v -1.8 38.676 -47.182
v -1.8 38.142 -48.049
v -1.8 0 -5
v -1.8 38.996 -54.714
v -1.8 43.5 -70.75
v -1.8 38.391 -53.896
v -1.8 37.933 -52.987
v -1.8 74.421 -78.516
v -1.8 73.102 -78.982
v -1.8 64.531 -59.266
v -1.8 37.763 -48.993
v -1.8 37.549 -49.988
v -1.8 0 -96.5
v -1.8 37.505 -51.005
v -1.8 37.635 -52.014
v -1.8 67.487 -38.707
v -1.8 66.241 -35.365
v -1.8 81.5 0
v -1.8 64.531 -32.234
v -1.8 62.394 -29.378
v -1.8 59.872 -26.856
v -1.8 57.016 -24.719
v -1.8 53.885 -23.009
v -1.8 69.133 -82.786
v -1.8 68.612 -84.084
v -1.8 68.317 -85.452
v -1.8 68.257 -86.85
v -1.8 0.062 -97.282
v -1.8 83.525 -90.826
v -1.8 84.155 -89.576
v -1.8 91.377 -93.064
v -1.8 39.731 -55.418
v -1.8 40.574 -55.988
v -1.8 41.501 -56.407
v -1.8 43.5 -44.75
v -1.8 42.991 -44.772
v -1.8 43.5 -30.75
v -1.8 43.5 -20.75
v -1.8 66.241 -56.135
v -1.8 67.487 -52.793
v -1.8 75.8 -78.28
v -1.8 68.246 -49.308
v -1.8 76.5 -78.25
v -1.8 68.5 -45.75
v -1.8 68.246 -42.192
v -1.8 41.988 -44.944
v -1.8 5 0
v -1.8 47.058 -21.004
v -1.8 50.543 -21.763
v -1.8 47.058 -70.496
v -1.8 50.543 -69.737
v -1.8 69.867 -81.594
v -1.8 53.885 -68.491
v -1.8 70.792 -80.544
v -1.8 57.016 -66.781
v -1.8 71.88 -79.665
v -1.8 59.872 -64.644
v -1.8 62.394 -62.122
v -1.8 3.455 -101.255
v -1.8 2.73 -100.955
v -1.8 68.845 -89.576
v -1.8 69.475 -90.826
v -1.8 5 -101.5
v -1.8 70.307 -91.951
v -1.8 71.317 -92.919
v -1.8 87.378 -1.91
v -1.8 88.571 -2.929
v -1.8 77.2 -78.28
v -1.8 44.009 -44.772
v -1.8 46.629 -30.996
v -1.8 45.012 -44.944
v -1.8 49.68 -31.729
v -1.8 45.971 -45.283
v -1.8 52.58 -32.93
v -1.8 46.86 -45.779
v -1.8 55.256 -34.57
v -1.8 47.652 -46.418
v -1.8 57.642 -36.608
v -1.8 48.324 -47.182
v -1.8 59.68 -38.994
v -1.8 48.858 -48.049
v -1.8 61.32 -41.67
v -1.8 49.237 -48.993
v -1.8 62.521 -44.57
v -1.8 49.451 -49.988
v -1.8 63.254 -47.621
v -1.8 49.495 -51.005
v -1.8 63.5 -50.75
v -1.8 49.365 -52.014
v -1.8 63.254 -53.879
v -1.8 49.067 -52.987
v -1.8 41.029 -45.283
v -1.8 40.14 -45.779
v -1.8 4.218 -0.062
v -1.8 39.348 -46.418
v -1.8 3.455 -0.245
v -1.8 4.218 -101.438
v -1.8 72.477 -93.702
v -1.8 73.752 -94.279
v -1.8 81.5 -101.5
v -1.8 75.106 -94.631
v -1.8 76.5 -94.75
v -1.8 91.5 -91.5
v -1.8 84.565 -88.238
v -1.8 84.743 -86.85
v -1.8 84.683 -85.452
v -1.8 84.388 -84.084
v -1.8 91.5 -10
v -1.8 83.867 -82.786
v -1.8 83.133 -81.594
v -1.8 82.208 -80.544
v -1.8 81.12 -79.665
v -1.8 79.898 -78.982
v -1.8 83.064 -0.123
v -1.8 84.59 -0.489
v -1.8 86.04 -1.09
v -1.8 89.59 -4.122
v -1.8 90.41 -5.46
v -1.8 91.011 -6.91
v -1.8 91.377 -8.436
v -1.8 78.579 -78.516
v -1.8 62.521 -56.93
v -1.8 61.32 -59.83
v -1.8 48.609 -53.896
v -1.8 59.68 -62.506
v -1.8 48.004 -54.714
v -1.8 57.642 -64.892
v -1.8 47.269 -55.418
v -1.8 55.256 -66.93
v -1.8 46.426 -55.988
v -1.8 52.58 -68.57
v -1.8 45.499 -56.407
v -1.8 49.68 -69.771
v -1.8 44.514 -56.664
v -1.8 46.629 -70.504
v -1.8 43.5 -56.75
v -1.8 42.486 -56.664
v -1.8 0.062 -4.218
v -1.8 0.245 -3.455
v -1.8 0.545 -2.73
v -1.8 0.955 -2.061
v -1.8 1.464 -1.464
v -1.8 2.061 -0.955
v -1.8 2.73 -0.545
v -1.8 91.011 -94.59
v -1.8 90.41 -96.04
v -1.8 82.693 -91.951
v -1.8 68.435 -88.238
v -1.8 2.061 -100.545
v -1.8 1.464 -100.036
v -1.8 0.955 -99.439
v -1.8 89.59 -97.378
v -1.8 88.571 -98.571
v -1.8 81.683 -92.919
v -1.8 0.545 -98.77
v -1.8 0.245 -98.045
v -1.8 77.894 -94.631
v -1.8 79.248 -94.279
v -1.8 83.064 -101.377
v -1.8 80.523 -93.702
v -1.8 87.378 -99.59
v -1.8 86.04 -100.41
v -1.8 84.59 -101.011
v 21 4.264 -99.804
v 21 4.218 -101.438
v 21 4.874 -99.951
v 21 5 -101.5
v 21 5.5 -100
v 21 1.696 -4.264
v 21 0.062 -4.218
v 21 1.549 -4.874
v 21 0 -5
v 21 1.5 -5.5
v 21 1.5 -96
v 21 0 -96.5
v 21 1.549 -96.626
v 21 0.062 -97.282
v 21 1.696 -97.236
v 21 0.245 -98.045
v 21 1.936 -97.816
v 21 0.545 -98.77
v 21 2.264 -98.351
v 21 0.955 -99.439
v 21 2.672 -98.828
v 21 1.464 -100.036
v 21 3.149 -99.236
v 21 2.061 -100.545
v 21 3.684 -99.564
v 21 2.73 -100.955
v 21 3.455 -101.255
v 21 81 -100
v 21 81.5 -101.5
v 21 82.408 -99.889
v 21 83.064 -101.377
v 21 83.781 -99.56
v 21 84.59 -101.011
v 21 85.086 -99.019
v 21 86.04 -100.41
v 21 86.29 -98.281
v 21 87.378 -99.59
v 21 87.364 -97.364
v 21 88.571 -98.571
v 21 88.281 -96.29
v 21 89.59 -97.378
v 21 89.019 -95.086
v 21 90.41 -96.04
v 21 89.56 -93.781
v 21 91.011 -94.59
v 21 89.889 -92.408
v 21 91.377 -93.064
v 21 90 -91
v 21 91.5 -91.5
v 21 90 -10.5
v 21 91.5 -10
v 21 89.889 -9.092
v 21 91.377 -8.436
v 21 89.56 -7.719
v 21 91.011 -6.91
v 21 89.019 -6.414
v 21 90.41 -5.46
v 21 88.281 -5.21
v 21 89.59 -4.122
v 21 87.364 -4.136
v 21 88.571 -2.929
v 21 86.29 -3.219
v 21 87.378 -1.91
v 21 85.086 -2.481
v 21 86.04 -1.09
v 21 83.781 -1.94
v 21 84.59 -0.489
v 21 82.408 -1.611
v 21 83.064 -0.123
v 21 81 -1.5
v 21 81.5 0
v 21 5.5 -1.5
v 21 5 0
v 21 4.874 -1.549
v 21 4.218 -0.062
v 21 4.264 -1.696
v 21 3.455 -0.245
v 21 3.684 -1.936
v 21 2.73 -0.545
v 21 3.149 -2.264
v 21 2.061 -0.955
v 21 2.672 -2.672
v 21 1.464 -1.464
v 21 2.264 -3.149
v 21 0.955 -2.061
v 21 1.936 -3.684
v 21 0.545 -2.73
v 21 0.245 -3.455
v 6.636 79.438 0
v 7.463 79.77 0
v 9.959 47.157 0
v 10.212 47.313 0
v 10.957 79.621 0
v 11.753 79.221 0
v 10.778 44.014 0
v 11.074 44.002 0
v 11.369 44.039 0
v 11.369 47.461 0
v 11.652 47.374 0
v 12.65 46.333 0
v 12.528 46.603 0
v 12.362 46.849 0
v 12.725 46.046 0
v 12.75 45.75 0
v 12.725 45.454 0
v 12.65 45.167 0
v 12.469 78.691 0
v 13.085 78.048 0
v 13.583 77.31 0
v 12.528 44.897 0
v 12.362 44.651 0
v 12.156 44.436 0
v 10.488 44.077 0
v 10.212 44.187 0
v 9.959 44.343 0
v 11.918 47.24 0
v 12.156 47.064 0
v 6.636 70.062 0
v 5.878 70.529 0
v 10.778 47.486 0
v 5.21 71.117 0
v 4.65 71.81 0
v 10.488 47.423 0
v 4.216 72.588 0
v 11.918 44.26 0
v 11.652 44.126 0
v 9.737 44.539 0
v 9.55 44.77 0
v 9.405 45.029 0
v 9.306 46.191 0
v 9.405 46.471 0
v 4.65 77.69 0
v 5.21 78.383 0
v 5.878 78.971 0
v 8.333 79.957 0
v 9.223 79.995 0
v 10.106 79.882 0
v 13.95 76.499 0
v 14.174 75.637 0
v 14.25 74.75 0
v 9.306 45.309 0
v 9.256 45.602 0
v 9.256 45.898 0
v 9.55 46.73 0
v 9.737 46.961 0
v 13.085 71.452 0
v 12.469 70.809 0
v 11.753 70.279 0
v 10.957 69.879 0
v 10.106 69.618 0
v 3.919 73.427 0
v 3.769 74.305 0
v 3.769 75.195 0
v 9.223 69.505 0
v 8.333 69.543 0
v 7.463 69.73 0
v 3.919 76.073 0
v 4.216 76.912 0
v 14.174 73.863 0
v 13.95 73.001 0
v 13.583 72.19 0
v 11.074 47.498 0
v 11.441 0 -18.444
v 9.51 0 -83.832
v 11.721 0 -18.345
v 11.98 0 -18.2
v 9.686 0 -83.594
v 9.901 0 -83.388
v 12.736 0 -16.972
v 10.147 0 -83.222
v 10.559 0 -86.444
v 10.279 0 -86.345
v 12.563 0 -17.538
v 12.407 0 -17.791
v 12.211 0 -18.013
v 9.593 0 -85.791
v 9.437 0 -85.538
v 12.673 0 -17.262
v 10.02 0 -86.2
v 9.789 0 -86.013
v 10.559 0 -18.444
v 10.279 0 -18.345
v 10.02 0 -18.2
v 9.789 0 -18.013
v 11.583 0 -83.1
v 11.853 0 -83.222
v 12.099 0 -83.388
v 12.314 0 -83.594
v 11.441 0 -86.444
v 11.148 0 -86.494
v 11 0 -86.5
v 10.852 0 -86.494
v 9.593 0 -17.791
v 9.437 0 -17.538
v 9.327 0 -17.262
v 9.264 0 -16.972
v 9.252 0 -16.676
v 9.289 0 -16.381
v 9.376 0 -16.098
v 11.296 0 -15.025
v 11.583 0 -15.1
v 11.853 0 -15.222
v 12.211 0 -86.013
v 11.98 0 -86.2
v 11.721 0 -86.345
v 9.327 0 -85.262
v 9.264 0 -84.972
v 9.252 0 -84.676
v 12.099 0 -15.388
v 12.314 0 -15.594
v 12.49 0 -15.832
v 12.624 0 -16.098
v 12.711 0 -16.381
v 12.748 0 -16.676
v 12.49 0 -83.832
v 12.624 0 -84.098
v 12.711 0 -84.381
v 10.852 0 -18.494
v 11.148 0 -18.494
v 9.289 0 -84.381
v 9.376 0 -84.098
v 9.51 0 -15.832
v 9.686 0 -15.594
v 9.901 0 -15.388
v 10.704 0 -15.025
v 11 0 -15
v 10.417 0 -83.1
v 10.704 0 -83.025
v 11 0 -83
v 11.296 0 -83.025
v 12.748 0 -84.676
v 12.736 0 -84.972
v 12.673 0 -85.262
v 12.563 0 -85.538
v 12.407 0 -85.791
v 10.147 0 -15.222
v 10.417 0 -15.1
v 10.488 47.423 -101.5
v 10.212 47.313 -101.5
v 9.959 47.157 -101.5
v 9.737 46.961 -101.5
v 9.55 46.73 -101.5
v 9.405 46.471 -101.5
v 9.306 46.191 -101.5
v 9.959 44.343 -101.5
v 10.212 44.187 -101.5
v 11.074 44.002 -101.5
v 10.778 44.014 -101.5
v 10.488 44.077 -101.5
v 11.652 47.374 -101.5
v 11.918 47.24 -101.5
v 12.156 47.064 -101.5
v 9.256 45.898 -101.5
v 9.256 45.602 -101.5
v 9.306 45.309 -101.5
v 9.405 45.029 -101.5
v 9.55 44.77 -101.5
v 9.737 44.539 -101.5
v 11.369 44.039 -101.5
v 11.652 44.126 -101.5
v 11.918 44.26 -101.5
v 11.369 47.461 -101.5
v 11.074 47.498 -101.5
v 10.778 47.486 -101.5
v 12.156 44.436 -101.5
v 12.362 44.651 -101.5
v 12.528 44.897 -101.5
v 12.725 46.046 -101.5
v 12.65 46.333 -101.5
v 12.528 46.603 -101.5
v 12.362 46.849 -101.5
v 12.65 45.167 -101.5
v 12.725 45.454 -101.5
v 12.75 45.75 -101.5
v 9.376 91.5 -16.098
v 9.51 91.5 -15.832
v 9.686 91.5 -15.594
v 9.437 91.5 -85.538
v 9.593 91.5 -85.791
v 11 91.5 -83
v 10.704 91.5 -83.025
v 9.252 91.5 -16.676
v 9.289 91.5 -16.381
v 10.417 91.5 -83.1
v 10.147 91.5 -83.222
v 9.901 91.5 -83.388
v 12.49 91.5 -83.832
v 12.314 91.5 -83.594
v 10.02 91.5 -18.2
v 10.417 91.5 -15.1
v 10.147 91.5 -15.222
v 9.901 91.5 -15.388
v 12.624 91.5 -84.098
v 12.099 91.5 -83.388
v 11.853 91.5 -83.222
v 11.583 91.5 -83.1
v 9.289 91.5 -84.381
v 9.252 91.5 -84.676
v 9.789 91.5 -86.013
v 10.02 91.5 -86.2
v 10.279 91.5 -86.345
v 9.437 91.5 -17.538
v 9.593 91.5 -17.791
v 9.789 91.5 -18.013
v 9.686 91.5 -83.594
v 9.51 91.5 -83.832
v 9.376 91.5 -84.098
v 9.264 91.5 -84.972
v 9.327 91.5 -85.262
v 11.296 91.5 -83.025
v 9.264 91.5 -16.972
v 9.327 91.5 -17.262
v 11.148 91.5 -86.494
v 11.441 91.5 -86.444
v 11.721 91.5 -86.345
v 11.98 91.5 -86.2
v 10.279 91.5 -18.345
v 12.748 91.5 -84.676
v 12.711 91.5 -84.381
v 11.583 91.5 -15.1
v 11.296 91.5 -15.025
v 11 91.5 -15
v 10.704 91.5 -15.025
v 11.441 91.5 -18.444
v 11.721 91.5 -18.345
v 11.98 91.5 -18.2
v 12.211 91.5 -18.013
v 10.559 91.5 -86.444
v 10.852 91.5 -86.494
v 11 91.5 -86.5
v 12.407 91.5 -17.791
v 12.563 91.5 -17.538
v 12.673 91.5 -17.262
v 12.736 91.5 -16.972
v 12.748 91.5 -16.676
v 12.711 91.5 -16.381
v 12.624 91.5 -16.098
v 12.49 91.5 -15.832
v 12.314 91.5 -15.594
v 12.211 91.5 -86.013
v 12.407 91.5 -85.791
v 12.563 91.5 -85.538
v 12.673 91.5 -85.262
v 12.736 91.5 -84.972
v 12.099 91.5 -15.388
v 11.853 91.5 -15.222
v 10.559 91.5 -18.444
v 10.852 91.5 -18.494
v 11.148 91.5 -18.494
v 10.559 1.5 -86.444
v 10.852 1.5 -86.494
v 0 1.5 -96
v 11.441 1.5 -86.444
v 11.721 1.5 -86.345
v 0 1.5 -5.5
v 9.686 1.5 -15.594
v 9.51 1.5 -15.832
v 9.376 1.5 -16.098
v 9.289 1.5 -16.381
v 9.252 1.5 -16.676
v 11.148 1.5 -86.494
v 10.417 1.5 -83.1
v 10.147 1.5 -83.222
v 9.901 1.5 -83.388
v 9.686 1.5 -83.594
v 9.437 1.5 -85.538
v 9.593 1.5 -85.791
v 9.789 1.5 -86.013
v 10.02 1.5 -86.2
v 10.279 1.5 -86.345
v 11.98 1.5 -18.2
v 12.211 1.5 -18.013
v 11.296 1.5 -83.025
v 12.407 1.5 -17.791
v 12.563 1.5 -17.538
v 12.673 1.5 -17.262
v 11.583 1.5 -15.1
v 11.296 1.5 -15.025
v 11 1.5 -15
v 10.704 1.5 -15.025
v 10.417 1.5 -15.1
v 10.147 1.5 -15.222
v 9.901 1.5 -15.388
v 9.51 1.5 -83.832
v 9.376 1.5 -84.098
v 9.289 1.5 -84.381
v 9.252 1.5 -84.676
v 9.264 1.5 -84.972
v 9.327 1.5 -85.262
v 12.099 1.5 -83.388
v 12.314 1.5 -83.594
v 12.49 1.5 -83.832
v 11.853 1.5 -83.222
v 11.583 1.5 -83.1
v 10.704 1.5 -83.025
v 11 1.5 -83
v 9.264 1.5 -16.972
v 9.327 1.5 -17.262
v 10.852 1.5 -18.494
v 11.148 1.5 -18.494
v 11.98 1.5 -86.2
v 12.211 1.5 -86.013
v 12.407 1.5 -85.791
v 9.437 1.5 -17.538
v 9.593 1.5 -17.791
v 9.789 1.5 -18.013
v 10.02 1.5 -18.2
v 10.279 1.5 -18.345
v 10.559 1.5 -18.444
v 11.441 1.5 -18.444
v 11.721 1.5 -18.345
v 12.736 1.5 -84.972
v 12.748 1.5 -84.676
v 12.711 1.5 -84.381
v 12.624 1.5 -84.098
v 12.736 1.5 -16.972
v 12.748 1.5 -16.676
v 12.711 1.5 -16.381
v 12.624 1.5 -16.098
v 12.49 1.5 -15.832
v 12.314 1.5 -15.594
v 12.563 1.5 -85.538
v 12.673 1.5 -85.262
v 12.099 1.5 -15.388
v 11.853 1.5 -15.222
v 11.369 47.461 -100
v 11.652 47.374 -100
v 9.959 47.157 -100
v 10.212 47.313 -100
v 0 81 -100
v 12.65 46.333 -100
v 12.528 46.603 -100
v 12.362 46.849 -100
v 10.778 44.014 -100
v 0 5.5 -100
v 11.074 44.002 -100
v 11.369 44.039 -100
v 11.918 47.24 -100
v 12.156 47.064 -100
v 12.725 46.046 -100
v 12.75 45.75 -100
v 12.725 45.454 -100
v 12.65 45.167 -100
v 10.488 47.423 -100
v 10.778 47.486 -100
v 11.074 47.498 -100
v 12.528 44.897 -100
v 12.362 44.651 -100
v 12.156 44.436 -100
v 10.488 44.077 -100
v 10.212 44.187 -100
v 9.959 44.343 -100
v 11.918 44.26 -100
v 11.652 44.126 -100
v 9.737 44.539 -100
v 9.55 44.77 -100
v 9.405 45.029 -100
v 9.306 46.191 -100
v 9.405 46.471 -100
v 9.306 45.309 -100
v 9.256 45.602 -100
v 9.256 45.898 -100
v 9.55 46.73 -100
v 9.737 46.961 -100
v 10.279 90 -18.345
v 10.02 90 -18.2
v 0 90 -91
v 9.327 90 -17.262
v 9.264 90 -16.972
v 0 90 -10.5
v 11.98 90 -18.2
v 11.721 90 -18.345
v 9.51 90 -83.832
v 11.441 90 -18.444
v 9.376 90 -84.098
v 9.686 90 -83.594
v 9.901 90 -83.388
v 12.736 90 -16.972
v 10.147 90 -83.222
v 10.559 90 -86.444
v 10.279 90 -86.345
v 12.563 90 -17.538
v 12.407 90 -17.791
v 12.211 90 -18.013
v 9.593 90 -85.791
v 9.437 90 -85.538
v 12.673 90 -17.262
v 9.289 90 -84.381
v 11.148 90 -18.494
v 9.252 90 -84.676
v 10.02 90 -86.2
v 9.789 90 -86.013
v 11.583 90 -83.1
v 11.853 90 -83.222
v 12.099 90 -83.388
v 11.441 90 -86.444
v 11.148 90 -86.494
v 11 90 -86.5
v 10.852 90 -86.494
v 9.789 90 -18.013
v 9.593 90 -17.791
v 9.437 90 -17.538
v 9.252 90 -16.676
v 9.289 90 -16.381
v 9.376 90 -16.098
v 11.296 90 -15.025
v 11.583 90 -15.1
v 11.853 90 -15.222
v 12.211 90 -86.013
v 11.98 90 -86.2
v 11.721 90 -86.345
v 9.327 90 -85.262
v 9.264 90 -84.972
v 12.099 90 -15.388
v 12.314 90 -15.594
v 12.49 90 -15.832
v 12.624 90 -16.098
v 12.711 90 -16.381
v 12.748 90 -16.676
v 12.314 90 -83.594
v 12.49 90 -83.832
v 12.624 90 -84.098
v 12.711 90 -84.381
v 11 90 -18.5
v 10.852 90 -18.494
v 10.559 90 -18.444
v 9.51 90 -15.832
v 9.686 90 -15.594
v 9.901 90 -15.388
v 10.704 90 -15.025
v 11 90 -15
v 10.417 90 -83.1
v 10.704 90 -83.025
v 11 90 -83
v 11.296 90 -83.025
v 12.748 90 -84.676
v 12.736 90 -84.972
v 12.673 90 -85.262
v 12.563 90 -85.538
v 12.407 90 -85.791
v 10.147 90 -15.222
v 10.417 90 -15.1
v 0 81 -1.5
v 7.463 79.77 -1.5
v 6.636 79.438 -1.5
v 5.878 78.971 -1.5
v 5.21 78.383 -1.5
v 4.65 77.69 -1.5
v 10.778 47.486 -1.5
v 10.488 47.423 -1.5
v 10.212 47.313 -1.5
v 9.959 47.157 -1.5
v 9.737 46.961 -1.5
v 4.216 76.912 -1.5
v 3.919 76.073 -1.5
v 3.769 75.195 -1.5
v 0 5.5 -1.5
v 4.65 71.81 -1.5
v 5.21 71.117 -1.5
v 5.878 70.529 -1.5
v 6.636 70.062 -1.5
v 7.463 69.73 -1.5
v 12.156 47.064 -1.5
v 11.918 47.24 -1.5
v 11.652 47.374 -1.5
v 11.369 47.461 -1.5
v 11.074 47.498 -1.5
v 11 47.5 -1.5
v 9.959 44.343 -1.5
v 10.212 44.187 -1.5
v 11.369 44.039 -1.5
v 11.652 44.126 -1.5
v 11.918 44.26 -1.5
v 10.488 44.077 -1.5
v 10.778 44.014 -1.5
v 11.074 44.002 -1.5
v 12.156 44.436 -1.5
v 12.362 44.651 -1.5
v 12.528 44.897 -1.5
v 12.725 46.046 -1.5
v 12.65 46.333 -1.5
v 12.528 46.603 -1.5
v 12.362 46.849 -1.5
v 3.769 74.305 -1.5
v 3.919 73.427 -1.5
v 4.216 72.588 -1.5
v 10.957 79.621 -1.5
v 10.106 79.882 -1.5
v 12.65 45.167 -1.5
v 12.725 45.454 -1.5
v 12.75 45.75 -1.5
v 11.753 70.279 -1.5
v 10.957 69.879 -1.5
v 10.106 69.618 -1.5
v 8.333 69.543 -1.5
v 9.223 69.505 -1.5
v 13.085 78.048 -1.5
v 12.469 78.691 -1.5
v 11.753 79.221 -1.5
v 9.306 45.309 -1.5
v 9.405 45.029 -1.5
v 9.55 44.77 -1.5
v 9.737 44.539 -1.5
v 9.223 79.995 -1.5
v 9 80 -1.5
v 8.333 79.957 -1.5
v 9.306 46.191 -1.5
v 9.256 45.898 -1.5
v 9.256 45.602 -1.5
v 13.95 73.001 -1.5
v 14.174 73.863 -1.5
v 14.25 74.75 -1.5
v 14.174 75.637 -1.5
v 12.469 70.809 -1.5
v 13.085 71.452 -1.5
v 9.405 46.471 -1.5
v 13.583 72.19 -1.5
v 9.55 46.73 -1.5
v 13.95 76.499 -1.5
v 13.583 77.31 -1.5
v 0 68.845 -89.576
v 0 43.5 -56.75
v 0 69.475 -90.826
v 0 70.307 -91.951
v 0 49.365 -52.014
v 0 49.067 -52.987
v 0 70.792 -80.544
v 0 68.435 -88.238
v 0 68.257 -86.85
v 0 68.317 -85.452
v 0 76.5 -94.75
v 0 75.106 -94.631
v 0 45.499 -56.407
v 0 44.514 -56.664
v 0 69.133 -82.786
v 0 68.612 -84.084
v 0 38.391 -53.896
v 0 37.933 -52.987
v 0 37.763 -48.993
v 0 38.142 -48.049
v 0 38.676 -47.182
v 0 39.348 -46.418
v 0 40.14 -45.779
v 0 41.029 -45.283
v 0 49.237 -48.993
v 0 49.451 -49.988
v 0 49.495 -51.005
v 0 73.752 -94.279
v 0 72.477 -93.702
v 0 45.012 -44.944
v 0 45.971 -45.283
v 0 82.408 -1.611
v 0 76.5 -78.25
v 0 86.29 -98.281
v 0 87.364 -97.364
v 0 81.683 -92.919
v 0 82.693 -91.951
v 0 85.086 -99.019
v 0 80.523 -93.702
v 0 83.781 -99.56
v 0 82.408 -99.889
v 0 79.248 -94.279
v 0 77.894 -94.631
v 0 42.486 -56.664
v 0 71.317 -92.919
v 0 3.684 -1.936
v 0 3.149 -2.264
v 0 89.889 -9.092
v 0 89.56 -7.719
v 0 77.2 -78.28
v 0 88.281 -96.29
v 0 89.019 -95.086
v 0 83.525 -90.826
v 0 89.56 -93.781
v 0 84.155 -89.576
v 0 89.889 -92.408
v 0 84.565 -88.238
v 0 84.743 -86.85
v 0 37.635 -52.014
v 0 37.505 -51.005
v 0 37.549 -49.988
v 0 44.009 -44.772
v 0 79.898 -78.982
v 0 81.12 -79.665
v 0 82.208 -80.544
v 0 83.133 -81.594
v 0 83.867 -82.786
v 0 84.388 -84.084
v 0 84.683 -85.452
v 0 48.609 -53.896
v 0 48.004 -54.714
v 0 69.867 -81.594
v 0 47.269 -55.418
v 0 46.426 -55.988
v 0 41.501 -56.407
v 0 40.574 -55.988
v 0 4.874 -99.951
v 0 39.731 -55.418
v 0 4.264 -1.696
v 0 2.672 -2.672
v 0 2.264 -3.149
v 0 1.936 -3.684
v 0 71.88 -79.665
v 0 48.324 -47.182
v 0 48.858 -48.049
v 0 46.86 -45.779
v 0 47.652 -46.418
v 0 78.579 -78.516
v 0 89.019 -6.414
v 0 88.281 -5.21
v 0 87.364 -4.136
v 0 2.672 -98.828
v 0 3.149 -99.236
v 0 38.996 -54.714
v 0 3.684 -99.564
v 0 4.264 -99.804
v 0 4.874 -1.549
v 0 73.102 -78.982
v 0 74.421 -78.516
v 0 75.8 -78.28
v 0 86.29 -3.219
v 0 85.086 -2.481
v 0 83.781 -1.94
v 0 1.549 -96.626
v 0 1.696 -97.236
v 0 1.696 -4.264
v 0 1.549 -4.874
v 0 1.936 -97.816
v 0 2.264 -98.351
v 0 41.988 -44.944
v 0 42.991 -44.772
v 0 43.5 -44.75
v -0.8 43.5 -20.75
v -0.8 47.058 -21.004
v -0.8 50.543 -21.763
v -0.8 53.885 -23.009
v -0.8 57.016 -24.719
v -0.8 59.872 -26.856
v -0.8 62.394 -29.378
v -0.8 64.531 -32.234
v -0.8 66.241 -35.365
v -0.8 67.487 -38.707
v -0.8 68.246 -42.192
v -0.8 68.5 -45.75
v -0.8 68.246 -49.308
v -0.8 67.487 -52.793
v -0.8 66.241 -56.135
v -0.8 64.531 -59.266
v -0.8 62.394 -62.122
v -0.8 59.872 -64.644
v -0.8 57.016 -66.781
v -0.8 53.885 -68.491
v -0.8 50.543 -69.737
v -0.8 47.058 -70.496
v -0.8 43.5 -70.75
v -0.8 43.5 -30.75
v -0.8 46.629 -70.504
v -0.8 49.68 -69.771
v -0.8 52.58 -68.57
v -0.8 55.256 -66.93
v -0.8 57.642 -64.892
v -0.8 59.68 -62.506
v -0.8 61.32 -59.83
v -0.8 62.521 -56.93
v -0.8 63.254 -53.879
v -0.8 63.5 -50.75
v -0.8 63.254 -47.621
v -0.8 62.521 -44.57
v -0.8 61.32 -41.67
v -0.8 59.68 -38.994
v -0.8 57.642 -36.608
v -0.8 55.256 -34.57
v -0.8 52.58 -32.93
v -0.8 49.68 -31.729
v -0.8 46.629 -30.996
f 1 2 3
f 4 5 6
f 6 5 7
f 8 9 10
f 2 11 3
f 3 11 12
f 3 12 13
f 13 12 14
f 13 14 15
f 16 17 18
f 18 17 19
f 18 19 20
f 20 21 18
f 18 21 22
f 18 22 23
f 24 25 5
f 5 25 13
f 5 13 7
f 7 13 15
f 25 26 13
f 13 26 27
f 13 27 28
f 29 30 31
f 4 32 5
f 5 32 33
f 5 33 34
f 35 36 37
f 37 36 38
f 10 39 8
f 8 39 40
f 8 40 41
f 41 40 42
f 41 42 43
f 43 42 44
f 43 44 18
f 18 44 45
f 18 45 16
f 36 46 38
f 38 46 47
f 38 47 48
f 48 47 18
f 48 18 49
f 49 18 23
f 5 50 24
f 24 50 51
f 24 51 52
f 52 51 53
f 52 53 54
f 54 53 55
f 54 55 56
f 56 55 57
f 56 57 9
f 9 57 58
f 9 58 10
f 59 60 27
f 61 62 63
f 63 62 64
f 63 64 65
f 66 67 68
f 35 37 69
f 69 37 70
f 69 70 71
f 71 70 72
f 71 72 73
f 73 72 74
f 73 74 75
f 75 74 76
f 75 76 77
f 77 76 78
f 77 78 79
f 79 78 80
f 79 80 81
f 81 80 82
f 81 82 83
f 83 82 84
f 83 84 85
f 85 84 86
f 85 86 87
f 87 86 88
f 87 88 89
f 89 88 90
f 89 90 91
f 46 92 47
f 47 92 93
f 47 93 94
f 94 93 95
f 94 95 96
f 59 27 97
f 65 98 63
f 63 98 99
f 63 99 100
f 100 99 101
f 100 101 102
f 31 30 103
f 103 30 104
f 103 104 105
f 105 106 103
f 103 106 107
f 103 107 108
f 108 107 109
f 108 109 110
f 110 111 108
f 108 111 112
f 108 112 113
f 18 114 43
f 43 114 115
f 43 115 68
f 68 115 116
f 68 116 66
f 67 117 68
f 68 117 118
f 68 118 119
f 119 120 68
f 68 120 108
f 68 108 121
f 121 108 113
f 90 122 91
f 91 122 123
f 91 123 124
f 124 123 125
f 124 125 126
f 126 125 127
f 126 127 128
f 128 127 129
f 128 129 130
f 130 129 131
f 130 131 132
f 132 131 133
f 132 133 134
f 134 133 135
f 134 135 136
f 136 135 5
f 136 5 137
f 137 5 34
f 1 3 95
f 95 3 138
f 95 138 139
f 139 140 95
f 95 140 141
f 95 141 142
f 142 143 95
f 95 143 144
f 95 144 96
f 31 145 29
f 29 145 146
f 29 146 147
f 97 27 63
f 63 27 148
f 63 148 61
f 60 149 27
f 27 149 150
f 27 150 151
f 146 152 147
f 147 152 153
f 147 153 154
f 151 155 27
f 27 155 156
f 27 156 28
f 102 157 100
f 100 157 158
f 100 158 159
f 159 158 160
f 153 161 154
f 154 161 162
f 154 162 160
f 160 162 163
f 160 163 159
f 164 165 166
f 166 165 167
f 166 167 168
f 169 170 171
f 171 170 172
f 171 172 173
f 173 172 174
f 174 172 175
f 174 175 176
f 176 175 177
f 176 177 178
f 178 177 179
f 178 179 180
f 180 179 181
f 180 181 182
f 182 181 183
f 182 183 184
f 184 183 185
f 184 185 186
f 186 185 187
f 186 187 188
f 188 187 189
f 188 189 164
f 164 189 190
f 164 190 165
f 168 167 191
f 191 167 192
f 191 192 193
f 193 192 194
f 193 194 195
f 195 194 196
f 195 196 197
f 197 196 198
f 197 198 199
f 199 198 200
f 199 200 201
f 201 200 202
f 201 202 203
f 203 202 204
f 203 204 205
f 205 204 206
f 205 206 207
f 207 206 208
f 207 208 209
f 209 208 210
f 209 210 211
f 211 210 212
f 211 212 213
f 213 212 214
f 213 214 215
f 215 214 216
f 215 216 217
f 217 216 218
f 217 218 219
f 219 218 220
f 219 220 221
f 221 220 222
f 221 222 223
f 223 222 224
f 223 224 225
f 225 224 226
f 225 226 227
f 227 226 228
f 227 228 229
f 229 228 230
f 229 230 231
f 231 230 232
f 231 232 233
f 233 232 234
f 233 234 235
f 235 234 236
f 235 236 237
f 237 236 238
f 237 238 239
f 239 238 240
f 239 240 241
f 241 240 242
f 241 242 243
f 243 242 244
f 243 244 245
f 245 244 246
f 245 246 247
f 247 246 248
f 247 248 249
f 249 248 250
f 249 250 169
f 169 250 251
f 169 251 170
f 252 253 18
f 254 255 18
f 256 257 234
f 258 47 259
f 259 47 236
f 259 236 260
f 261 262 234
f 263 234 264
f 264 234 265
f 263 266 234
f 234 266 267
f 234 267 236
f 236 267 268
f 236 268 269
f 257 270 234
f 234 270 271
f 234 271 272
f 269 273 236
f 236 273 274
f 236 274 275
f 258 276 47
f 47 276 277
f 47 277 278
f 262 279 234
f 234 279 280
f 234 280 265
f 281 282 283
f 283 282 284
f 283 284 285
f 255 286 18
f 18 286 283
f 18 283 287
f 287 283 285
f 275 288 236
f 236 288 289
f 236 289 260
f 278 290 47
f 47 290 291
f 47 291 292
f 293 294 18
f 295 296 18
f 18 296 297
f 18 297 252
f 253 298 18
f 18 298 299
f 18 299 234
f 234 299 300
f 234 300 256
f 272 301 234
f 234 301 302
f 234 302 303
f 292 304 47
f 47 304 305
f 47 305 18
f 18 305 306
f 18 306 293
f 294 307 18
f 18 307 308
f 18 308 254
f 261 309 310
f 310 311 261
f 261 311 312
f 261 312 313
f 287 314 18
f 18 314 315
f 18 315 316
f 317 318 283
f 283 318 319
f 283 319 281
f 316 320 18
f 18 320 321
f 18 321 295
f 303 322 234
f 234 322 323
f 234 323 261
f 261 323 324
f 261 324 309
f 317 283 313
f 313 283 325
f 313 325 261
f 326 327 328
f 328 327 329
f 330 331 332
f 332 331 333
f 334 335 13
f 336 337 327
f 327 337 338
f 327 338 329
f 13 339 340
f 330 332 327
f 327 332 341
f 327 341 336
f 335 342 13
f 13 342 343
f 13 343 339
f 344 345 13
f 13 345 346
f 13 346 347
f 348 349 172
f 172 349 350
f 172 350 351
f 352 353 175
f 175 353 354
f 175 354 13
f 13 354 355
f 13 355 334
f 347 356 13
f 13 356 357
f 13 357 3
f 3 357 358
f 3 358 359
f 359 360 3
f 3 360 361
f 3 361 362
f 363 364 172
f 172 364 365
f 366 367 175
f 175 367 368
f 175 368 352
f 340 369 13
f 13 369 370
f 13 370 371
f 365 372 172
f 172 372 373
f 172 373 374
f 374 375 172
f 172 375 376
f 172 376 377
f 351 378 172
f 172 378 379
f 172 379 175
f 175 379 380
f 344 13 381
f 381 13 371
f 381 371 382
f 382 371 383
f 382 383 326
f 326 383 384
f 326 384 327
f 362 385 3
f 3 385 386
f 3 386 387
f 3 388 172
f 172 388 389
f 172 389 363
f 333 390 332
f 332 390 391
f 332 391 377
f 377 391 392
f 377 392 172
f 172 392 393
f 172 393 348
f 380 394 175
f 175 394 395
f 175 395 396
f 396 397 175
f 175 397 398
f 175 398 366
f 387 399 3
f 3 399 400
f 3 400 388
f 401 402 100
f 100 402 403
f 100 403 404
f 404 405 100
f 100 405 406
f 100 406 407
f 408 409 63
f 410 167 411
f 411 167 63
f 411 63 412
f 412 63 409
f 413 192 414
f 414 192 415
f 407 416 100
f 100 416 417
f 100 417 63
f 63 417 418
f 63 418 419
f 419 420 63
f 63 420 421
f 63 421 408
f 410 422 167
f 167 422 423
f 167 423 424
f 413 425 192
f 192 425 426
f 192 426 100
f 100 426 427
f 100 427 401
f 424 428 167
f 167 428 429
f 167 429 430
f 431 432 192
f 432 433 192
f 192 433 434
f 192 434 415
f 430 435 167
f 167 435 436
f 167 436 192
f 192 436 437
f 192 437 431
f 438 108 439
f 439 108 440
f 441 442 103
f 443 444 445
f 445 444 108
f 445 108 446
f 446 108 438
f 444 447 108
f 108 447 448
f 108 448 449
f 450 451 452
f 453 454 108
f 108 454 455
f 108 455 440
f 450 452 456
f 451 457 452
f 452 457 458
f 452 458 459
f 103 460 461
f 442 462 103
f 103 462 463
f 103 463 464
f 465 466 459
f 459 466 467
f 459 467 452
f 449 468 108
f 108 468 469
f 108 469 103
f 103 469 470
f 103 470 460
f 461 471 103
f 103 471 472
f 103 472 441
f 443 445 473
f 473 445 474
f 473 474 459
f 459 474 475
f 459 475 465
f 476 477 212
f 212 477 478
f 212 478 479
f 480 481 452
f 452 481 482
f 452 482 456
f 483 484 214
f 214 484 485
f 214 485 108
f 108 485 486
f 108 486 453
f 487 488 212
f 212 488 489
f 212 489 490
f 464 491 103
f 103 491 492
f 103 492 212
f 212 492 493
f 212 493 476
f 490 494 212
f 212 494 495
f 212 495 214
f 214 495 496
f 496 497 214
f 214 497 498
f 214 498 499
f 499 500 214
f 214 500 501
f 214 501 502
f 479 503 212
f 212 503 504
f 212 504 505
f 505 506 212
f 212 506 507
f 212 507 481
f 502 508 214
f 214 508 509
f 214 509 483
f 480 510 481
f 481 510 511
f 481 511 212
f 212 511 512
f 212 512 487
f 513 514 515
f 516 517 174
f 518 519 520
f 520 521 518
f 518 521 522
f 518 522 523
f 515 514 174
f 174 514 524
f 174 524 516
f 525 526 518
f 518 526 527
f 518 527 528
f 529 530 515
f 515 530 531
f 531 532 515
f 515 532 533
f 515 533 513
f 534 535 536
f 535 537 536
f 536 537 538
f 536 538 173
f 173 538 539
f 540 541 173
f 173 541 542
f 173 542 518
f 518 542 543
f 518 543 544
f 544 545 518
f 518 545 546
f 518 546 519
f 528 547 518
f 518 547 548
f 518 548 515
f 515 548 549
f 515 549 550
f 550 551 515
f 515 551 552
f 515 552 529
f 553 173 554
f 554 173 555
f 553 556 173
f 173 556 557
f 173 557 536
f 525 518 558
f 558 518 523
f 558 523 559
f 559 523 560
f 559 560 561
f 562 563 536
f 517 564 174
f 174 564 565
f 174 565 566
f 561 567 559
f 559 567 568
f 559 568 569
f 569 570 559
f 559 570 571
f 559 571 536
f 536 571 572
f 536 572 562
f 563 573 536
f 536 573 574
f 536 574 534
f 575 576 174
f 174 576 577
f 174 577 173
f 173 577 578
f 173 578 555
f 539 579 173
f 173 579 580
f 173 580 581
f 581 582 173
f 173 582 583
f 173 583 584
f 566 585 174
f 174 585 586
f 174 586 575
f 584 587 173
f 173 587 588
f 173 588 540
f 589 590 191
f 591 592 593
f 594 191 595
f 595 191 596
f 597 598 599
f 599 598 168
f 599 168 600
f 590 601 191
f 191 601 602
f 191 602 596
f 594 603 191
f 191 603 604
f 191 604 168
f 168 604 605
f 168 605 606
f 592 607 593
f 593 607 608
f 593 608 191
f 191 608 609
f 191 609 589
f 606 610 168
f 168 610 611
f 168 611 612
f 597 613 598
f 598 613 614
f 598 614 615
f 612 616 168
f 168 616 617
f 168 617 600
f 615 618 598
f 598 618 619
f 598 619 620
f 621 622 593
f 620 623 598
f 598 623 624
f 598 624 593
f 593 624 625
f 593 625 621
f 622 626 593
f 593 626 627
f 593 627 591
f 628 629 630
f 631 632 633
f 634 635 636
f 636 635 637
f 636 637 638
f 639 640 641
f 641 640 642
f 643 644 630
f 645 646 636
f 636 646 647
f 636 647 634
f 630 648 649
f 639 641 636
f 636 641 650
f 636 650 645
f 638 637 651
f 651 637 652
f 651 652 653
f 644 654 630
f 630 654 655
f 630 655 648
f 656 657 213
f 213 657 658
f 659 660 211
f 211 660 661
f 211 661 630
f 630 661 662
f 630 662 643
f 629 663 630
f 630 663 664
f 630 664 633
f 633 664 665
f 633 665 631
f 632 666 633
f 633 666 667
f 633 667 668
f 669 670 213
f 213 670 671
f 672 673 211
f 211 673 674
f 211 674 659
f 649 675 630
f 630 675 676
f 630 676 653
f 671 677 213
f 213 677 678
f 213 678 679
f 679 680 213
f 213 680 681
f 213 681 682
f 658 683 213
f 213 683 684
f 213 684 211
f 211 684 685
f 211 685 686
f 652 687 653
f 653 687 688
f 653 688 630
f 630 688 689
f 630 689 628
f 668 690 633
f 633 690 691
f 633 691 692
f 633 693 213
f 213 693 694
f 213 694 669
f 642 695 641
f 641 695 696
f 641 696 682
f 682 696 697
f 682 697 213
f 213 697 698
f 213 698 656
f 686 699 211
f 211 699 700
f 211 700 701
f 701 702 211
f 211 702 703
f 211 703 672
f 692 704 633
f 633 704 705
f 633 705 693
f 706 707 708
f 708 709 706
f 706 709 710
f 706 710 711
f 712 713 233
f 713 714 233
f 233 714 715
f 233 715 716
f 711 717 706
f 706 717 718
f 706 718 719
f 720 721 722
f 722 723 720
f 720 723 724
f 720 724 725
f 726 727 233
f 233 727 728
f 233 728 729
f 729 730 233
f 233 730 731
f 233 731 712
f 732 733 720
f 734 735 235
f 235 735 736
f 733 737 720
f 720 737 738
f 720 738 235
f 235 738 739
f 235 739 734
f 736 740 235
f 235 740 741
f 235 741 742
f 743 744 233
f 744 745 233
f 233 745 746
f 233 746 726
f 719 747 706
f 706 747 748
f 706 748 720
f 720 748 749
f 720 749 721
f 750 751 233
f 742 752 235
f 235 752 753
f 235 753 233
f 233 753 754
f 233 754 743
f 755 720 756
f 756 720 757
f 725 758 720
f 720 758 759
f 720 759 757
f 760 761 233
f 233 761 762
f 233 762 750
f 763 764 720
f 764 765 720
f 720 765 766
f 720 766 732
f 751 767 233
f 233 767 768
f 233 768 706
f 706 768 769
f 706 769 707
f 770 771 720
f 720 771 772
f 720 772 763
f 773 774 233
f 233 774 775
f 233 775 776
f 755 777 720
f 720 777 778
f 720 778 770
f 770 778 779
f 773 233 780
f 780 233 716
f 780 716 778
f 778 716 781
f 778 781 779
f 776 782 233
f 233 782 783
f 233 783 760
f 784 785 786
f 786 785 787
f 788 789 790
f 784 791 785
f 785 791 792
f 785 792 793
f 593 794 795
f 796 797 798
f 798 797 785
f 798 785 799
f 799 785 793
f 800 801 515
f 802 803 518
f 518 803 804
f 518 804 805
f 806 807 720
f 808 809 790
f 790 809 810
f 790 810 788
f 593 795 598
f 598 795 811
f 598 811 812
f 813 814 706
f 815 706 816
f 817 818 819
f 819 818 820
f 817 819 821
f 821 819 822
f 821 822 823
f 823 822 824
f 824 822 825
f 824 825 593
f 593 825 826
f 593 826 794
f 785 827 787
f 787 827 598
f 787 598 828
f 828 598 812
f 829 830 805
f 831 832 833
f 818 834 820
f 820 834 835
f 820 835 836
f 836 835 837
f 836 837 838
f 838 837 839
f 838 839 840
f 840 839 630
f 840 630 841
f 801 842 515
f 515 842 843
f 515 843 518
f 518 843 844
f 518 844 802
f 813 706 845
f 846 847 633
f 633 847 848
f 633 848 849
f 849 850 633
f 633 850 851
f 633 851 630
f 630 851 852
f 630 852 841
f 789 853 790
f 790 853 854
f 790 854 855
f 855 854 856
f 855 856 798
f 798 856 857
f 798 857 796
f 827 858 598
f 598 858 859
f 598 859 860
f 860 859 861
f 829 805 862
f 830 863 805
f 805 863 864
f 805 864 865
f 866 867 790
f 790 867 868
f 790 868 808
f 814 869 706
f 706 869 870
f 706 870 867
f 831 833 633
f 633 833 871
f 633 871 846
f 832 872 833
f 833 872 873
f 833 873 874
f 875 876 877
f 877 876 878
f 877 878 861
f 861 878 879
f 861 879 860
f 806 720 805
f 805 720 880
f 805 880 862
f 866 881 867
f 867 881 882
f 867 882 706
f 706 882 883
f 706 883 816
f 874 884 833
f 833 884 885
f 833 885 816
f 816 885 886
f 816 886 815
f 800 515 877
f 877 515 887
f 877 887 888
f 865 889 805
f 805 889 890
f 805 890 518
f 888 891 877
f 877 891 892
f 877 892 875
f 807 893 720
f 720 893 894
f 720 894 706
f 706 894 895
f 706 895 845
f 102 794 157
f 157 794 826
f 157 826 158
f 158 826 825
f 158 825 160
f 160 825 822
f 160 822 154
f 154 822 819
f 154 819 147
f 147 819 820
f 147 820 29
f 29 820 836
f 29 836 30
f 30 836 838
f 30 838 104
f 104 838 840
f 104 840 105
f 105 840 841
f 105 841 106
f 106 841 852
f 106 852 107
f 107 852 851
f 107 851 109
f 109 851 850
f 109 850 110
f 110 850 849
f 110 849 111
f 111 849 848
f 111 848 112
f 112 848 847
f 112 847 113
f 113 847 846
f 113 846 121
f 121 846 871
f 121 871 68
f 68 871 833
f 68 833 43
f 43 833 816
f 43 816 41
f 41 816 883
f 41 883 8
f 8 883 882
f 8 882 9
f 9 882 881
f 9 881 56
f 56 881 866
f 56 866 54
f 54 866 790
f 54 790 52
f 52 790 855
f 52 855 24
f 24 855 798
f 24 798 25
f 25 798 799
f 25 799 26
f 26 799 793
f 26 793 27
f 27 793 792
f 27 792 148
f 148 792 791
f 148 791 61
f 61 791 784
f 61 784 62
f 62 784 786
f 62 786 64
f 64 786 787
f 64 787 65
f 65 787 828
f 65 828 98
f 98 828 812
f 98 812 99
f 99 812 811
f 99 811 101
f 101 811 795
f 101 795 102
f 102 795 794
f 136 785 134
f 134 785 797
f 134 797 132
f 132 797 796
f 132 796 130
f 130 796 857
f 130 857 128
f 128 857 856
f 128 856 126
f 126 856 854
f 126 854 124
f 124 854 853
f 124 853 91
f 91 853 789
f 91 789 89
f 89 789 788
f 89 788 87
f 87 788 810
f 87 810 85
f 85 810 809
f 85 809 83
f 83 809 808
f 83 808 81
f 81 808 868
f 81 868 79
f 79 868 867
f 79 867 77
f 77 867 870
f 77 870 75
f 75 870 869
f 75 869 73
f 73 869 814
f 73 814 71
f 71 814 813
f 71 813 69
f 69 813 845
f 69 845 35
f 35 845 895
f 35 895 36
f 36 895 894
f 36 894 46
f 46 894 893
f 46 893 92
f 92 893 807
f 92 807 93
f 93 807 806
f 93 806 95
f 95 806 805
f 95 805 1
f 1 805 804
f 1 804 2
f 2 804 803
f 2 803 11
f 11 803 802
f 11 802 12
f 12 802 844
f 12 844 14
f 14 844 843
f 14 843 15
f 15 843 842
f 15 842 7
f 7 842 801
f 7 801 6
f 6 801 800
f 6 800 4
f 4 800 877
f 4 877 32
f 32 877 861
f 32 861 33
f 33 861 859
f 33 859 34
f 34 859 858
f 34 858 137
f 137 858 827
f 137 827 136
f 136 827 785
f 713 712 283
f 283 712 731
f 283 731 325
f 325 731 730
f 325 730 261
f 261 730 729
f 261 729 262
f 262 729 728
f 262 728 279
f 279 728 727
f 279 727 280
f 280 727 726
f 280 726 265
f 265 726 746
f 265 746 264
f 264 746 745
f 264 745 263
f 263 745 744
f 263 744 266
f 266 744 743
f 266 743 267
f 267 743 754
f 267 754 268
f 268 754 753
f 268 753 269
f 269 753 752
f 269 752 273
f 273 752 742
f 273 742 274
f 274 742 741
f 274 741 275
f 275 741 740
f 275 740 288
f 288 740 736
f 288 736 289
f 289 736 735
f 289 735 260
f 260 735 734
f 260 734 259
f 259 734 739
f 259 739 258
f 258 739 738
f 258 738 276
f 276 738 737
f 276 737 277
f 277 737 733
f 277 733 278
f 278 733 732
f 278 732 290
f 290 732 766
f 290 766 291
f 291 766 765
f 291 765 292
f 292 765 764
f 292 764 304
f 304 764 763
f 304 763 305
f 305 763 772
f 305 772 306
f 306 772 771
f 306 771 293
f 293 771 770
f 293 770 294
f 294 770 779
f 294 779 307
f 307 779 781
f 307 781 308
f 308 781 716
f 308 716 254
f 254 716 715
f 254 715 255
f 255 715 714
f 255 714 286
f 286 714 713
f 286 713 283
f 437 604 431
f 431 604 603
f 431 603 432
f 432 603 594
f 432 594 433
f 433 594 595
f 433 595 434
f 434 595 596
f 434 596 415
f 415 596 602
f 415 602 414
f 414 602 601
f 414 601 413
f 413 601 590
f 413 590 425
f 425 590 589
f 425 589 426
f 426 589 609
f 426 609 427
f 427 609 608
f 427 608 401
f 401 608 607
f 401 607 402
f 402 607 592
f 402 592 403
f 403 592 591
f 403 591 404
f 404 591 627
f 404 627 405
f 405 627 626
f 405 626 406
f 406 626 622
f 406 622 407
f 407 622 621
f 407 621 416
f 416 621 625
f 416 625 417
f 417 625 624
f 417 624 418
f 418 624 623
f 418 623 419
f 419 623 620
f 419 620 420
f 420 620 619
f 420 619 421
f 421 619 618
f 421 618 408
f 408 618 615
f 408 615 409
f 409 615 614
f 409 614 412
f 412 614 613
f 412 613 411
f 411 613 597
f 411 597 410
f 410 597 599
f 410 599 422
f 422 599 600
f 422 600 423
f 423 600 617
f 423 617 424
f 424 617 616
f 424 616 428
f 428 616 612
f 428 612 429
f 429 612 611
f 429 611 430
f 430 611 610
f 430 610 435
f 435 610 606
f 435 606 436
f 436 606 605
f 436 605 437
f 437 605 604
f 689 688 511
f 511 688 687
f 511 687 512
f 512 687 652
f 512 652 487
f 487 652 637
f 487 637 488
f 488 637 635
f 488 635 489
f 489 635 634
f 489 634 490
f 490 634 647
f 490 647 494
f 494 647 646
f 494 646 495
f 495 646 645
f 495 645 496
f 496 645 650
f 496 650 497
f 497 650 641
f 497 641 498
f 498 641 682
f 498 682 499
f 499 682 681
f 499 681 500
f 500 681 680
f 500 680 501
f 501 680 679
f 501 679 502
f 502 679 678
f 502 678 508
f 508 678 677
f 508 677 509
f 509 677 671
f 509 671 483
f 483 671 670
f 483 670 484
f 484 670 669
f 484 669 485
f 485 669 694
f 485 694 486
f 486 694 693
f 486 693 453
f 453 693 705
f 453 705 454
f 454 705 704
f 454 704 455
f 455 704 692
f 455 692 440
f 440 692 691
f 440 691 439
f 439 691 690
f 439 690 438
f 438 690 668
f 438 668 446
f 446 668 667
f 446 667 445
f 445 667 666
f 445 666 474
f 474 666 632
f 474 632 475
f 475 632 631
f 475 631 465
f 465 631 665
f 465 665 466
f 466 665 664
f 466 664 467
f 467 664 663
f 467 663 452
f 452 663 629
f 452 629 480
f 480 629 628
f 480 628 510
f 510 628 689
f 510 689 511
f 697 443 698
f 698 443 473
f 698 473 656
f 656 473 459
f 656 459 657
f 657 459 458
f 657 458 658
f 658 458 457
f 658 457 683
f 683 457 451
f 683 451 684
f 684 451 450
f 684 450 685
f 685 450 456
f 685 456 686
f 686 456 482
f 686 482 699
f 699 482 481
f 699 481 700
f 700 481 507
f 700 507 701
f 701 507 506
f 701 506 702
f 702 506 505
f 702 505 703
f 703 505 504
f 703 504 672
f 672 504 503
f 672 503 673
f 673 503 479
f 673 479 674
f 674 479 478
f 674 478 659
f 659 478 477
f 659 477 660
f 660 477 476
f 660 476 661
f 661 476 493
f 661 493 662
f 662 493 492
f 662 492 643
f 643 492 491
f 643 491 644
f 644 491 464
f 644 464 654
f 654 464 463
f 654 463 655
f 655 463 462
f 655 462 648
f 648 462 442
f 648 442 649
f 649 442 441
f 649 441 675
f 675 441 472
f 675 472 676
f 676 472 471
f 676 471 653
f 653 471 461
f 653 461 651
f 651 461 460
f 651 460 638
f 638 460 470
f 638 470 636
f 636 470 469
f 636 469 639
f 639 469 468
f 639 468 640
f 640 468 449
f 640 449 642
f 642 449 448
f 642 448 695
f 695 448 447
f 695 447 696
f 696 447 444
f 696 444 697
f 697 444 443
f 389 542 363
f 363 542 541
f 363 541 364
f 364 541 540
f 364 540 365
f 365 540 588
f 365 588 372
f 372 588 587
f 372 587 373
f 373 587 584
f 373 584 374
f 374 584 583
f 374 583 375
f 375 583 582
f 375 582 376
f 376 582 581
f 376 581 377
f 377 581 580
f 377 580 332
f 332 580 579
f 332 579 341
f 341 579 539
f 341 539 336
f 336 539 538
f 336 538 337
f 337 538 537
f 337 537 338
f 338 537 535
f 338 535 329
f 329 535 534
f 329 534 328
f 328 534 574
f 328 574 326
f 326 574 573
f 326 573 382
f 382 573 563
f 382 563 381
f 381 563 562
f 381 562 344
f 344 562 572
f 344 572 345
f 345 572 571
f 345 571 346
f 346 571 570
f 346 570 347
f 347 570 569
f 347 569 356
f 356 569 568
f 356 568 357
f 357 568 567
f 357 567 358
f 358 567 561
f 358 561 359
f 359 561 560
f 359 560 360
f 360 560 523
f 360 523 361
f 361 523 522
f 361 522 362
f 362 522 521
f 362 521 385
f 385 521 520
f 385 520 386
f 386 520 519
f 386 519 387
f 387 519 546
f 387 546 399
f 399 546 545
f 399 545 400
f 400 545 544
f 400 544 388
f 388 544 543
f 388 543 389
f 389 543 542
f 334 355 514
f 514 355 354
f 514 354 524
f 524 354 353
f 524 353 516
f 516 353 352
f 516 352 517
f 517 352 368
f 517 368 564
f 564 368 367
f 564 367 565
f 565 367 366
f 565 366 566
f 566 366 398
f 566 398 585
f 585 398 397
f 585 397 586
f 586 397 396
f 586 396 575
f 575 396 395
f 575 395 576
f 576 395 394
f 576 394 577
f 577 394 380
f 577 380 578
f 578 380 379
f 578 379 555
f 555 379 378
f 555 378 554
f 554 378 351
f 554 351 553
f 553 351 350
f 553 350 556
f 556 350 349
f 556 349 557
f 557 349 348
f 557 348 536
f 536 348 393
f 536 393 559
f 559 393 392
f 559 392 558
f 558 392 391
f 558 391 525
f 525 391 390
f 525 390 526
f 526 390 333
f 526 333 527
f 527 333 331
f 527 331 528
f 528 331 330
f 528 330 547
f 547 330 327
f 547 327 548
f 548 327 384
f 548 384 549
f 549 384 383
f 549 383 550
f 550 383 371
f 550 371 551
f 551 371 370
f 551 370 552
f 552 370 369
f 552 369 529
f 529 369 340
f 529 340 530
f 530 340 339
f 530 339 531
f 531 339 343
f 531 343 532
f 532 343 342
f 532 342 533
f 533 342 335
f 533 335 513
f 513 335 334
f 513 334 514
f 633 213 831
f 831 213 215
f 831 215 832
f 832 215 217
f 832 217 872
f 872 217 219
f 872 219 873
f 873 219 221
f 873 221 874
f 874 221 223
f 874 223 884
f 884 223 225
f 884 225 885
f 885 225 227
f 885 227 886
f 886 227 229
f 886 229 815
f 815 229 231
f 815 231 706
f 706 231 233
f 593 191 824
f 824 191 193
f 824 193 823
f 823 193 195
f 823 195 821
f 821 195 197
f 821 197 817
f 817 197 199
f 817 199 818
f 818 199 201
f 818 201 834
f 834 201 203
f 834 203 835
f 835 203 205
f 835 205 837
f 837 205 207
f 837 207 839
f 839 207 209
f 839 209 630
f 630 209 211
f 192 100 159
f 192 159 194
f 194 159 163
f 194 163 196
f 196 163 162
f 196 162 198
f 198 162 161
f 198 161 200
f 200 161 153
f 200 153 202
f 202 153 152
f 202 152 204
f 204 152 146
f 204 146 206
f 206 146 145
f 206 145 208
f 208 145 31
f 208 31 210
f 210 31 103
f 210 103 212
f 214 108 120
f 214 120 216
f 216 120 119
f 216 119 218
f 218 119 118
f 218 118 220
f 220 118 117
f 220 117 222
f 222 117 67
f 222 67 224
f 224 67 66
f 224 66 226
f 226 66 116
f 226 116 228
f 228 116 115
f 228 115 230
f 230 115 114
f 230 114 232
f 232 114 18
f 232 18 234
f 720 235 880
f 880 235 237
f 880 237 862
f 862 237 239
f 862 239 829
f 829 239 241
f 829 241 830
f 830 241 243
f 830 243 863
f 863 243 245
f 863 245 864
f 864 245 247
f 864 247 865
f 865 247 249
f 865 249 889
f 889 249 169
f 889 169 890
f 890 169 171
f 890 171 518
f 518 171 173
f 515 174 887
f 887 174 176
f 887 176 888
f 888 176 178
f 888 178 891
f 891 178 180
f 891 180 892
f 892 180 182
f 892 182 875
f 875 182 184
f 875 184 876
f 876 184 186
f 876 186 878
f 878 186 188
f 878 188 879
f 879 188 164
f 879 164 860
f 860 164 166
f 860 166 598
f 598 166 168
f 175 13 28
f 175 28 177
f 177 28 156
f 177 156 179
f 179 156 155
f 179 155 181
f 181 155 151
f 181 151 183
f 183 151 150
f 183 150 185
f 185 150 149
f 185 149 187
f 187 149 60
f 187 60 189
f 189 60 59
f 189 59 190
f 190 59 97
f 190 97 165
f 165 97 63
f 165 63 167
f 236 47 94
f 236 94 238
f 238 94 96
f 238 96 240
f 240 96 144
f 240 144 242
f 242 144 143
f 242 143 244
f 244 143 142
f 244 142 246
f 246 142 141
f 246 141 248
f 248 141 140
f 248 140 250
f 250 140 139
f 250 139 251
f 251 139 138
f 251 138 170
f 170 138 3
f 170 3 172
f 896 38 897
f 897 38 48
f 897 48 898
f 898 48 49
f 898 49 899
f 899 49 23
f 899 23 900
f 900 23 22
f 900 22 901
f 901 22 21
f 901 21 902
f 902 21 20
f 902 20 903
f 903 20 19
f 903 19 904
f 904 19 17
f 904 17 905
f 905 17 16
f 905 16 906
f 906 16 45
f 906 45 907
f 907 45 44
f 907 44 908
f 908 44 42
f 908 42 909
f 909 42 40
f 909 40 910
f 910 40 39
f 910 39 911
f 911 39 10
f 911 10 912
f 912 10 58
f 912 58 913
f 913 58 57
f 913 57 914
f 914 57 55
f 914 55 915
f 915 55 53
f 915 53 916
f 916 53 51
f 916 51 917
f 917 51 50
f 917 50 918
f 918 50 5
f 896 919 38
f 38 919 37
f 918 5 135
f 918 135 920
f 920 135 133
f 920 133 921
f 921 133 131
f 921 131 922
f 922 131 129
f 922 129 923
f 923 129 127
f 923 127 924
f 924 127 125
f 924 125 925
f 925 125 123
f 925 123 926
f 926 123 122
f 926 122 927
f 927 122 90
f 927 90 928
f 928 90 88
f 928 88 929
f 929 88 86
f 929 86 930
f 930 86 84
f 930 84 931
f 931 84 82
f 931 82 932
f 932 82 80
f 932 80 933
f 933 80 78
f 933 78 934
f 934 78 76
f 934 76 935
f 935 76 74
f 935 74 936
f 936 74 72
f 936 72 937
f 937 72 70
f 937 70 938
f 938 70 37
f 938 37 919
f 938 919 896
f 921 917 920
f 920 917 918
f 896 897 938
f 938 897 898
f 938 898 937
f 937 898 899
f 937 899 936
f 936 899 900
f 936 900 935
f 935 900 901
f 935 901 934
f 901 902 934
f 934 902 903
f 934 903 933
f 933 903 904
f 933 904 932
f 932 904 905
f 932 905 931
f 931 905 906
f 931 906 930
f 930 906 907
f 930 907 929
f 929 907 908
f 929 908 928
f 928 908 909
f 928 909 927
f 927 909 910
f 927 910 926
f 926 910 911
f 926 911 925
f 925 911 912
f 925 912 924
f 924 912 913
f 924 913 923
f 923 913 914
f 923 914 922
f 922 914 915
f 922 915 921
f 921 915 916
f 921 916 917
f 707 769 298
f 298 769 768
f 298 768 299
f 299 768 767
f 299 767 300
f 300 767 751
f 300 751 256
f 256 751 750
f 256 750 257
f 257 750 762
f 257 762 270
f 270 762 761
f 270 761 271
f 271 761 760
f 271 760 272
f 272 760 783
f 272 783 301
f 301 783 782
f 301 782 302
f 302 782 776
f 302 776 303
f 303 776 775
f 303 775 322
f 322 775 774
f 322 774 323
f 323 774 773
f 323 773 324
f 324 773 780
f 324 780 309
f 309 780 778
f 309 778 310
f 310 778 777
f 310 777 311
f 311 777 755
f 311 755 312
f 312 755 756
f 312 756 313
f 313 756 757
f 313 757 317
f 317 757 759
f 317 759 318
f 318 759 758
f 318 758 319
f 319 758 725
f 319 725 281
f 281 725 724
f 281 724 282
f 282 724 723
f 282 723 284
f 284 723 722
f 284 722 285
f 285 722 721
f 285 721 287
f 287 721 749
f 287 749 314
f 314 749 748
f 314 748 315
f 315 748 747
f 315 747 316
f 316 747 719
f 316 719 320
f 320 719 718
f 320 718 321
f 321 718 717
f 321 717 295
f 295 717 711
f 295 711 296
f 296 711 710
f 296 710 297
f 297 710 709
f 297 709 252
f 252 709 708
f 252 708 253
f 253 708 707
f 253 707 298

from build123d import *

# Parameters (mm, degrees)
SKETCH_1_W          = 101.5
SKETCH_1_H          = 91.5
SKETCH_1_W_2        = 98.5
SKETCH_1_H_2        = 88.5
EXTRUDE_1_DEPTH     = 21
SKETCH_2_W          = 101.5
SKETCH_2_H          = 91.5
SKETCH_2_R          = 8.25
SKETCH_2_R_2        = 6
EXTRUDE_2_DEPTH     = 1.8
SKETCH_3_R          = 1.75
CUT_EXTRUDE_1_DEPTH = 139.25881527
SKETCH_4_R          = 1.75
CUT_EXTRUDE_2_DEPTH = 139.25881527
FILLET_1_R          = 9
FILLET_2_R          = 10
FILLET_3_R          = 4
FILLET_4_R          = 5
CUT_EXTRUDE_3_DEPTH = 1
CUT_EXTRUDE_4_REACH = 140.259
SKETCH_6_R          = 5.25


with BuildPart() as part:
    # 草图1 → 凸台-拉伸1 (new body)
    with BuildSketch(Plane(origin=(0, 0, 0), x_dir=(0, 0, -1), z_dir=(1, 0, 0))):
        with Locations((50.75, 45.75)):
            Rectangle(SKETCH_1_W, SKETCH_1_H)
        with Locations((50.75, 45.75)):
            Rectangle(SKETCH_1_W_2, SKETCH_1_H_2, mode=Mode.SUBTRACT)
    extrude(amount=EXTRUDE_1_DEPTH)

    # 草图2 → 凸台-拉伸2 (add)
    with BuildSketch(Plane.ZY):
        with Locations((-50.75, 45.75)):
            Rectangle(SKETCH_2_W, SKETCH_2_H)
        with Locations((-86.5, 76.5)):
            Circle(SKETCH_2_R, mode=Mode.SUBTRACT)
        with Locations((-50.75, 43.5)):
            Circle(SKETCH_2_R_2, mode=Mode.SUBTRACT)
    extrude(amount=EXTRUDE_2_DEPTH)

    # 草图3 → 切除-拉伸1 (cut, through all)
    with BuildSketch(Plane.XY):
        with Locations((11, 45.75)):
            Circle(SKETCH_3_R)
    extrude(amount=-CUT_EXTRUDE_1_DEPTH, mode=Mode.SUBTRACT)

    # 草图4 → 切除-拉伸2 (cut, through all)
    with BuildSketch(Plane(origin=(0, 91.5, 0), x_dir=(1, 0, 0), z_dir=(0, 1, 0))):
        with Locations(Location((11, 16.75, 0), (0, 0, 270))):
            Circle(SKETCH_4_R)
        with Locations(Location((11, 84.75, 0), (0, 0, 90))):
            Circle(SKETCH_4_R)
    extrude(amount=-CUT_EXTRUDE_2_DEPTH, mode=Mode.SUBTRACT)

    # 圆角1
    fillet_1_edges = [part.edges().sort_by_distance(p)[0] for p in [
        (10.5, 90, -100),
        (10.5, 90, -1.5),
    ]]
    fillet(fillet_1_edges, radius=FILLET_1_R)

    # 圆角2
    fillet_2_edges = [part.edges().sort_by_distance(p)[0] for p in [
        (9.6, 91.5, 0),
        (9.6, 91.5, -101.5),
    ]]
    fillet(fillet_2_edges, radius=FILLET_2_R)

    # 圆角3
    fillet_3_edges = [part.edges().sort_by_distance(p)[0] for p in [
        (10.5, 1.5, -1.5),
        (10.5, 1.5, -100),
    ]]
    fillet(fillet_3_edges, radius=FILLET_3_R)

    # 圆角4
    fillet_4_edges = [part.edges().sort_by_distance(p)[0] for p in [
        (9.6, 0, -101.5),
        (9.6, 0, 0),
    ]]
    fillet(fillet_4_edges, radius=FILLET_4_R)

    # 草图5 → 切除-拉伸3 (cut)
    with BuildSketch(Plane.ZY.offset(1.8)):
        with BuildLine():
            Line((-30.75, 43.5), (-20.75, 43.5))
            ThreePointArc((-20.75, 43.5), (-45.75, 68.5), (-70.75, 43.5))
            ThreePointArc((-70.75, 43.5), (-50.75, 63.5), (-30.75, 43.5))
        make_face()
    extrude(amount=-CUT_EXTRUDE_3_DEPTH, mode=Mode.SUBTRACT)

    # 草图6 → 切除-拉伸4 (cut, up to next)
    with BuildSketch(Plane.XY, mode=Mode.PRIVATE) as cut_extrude_4_sk1:
        with Locations((9, 74.75)):
            Circle(SKETCH_6_R)
    cut_extrude_4_tool1 = extrude(cut_extrude_4_sk1.sketch, amount=-CUT_EXTRUDE_4_REACH, mode=Mode.PRIVATE) & part.part
    add(cut_extrude_4_tool1.solids().sort_by_distance((9, 74.75, 0))[0], mode=Mode.SUBTRACT)


solid = part.part
